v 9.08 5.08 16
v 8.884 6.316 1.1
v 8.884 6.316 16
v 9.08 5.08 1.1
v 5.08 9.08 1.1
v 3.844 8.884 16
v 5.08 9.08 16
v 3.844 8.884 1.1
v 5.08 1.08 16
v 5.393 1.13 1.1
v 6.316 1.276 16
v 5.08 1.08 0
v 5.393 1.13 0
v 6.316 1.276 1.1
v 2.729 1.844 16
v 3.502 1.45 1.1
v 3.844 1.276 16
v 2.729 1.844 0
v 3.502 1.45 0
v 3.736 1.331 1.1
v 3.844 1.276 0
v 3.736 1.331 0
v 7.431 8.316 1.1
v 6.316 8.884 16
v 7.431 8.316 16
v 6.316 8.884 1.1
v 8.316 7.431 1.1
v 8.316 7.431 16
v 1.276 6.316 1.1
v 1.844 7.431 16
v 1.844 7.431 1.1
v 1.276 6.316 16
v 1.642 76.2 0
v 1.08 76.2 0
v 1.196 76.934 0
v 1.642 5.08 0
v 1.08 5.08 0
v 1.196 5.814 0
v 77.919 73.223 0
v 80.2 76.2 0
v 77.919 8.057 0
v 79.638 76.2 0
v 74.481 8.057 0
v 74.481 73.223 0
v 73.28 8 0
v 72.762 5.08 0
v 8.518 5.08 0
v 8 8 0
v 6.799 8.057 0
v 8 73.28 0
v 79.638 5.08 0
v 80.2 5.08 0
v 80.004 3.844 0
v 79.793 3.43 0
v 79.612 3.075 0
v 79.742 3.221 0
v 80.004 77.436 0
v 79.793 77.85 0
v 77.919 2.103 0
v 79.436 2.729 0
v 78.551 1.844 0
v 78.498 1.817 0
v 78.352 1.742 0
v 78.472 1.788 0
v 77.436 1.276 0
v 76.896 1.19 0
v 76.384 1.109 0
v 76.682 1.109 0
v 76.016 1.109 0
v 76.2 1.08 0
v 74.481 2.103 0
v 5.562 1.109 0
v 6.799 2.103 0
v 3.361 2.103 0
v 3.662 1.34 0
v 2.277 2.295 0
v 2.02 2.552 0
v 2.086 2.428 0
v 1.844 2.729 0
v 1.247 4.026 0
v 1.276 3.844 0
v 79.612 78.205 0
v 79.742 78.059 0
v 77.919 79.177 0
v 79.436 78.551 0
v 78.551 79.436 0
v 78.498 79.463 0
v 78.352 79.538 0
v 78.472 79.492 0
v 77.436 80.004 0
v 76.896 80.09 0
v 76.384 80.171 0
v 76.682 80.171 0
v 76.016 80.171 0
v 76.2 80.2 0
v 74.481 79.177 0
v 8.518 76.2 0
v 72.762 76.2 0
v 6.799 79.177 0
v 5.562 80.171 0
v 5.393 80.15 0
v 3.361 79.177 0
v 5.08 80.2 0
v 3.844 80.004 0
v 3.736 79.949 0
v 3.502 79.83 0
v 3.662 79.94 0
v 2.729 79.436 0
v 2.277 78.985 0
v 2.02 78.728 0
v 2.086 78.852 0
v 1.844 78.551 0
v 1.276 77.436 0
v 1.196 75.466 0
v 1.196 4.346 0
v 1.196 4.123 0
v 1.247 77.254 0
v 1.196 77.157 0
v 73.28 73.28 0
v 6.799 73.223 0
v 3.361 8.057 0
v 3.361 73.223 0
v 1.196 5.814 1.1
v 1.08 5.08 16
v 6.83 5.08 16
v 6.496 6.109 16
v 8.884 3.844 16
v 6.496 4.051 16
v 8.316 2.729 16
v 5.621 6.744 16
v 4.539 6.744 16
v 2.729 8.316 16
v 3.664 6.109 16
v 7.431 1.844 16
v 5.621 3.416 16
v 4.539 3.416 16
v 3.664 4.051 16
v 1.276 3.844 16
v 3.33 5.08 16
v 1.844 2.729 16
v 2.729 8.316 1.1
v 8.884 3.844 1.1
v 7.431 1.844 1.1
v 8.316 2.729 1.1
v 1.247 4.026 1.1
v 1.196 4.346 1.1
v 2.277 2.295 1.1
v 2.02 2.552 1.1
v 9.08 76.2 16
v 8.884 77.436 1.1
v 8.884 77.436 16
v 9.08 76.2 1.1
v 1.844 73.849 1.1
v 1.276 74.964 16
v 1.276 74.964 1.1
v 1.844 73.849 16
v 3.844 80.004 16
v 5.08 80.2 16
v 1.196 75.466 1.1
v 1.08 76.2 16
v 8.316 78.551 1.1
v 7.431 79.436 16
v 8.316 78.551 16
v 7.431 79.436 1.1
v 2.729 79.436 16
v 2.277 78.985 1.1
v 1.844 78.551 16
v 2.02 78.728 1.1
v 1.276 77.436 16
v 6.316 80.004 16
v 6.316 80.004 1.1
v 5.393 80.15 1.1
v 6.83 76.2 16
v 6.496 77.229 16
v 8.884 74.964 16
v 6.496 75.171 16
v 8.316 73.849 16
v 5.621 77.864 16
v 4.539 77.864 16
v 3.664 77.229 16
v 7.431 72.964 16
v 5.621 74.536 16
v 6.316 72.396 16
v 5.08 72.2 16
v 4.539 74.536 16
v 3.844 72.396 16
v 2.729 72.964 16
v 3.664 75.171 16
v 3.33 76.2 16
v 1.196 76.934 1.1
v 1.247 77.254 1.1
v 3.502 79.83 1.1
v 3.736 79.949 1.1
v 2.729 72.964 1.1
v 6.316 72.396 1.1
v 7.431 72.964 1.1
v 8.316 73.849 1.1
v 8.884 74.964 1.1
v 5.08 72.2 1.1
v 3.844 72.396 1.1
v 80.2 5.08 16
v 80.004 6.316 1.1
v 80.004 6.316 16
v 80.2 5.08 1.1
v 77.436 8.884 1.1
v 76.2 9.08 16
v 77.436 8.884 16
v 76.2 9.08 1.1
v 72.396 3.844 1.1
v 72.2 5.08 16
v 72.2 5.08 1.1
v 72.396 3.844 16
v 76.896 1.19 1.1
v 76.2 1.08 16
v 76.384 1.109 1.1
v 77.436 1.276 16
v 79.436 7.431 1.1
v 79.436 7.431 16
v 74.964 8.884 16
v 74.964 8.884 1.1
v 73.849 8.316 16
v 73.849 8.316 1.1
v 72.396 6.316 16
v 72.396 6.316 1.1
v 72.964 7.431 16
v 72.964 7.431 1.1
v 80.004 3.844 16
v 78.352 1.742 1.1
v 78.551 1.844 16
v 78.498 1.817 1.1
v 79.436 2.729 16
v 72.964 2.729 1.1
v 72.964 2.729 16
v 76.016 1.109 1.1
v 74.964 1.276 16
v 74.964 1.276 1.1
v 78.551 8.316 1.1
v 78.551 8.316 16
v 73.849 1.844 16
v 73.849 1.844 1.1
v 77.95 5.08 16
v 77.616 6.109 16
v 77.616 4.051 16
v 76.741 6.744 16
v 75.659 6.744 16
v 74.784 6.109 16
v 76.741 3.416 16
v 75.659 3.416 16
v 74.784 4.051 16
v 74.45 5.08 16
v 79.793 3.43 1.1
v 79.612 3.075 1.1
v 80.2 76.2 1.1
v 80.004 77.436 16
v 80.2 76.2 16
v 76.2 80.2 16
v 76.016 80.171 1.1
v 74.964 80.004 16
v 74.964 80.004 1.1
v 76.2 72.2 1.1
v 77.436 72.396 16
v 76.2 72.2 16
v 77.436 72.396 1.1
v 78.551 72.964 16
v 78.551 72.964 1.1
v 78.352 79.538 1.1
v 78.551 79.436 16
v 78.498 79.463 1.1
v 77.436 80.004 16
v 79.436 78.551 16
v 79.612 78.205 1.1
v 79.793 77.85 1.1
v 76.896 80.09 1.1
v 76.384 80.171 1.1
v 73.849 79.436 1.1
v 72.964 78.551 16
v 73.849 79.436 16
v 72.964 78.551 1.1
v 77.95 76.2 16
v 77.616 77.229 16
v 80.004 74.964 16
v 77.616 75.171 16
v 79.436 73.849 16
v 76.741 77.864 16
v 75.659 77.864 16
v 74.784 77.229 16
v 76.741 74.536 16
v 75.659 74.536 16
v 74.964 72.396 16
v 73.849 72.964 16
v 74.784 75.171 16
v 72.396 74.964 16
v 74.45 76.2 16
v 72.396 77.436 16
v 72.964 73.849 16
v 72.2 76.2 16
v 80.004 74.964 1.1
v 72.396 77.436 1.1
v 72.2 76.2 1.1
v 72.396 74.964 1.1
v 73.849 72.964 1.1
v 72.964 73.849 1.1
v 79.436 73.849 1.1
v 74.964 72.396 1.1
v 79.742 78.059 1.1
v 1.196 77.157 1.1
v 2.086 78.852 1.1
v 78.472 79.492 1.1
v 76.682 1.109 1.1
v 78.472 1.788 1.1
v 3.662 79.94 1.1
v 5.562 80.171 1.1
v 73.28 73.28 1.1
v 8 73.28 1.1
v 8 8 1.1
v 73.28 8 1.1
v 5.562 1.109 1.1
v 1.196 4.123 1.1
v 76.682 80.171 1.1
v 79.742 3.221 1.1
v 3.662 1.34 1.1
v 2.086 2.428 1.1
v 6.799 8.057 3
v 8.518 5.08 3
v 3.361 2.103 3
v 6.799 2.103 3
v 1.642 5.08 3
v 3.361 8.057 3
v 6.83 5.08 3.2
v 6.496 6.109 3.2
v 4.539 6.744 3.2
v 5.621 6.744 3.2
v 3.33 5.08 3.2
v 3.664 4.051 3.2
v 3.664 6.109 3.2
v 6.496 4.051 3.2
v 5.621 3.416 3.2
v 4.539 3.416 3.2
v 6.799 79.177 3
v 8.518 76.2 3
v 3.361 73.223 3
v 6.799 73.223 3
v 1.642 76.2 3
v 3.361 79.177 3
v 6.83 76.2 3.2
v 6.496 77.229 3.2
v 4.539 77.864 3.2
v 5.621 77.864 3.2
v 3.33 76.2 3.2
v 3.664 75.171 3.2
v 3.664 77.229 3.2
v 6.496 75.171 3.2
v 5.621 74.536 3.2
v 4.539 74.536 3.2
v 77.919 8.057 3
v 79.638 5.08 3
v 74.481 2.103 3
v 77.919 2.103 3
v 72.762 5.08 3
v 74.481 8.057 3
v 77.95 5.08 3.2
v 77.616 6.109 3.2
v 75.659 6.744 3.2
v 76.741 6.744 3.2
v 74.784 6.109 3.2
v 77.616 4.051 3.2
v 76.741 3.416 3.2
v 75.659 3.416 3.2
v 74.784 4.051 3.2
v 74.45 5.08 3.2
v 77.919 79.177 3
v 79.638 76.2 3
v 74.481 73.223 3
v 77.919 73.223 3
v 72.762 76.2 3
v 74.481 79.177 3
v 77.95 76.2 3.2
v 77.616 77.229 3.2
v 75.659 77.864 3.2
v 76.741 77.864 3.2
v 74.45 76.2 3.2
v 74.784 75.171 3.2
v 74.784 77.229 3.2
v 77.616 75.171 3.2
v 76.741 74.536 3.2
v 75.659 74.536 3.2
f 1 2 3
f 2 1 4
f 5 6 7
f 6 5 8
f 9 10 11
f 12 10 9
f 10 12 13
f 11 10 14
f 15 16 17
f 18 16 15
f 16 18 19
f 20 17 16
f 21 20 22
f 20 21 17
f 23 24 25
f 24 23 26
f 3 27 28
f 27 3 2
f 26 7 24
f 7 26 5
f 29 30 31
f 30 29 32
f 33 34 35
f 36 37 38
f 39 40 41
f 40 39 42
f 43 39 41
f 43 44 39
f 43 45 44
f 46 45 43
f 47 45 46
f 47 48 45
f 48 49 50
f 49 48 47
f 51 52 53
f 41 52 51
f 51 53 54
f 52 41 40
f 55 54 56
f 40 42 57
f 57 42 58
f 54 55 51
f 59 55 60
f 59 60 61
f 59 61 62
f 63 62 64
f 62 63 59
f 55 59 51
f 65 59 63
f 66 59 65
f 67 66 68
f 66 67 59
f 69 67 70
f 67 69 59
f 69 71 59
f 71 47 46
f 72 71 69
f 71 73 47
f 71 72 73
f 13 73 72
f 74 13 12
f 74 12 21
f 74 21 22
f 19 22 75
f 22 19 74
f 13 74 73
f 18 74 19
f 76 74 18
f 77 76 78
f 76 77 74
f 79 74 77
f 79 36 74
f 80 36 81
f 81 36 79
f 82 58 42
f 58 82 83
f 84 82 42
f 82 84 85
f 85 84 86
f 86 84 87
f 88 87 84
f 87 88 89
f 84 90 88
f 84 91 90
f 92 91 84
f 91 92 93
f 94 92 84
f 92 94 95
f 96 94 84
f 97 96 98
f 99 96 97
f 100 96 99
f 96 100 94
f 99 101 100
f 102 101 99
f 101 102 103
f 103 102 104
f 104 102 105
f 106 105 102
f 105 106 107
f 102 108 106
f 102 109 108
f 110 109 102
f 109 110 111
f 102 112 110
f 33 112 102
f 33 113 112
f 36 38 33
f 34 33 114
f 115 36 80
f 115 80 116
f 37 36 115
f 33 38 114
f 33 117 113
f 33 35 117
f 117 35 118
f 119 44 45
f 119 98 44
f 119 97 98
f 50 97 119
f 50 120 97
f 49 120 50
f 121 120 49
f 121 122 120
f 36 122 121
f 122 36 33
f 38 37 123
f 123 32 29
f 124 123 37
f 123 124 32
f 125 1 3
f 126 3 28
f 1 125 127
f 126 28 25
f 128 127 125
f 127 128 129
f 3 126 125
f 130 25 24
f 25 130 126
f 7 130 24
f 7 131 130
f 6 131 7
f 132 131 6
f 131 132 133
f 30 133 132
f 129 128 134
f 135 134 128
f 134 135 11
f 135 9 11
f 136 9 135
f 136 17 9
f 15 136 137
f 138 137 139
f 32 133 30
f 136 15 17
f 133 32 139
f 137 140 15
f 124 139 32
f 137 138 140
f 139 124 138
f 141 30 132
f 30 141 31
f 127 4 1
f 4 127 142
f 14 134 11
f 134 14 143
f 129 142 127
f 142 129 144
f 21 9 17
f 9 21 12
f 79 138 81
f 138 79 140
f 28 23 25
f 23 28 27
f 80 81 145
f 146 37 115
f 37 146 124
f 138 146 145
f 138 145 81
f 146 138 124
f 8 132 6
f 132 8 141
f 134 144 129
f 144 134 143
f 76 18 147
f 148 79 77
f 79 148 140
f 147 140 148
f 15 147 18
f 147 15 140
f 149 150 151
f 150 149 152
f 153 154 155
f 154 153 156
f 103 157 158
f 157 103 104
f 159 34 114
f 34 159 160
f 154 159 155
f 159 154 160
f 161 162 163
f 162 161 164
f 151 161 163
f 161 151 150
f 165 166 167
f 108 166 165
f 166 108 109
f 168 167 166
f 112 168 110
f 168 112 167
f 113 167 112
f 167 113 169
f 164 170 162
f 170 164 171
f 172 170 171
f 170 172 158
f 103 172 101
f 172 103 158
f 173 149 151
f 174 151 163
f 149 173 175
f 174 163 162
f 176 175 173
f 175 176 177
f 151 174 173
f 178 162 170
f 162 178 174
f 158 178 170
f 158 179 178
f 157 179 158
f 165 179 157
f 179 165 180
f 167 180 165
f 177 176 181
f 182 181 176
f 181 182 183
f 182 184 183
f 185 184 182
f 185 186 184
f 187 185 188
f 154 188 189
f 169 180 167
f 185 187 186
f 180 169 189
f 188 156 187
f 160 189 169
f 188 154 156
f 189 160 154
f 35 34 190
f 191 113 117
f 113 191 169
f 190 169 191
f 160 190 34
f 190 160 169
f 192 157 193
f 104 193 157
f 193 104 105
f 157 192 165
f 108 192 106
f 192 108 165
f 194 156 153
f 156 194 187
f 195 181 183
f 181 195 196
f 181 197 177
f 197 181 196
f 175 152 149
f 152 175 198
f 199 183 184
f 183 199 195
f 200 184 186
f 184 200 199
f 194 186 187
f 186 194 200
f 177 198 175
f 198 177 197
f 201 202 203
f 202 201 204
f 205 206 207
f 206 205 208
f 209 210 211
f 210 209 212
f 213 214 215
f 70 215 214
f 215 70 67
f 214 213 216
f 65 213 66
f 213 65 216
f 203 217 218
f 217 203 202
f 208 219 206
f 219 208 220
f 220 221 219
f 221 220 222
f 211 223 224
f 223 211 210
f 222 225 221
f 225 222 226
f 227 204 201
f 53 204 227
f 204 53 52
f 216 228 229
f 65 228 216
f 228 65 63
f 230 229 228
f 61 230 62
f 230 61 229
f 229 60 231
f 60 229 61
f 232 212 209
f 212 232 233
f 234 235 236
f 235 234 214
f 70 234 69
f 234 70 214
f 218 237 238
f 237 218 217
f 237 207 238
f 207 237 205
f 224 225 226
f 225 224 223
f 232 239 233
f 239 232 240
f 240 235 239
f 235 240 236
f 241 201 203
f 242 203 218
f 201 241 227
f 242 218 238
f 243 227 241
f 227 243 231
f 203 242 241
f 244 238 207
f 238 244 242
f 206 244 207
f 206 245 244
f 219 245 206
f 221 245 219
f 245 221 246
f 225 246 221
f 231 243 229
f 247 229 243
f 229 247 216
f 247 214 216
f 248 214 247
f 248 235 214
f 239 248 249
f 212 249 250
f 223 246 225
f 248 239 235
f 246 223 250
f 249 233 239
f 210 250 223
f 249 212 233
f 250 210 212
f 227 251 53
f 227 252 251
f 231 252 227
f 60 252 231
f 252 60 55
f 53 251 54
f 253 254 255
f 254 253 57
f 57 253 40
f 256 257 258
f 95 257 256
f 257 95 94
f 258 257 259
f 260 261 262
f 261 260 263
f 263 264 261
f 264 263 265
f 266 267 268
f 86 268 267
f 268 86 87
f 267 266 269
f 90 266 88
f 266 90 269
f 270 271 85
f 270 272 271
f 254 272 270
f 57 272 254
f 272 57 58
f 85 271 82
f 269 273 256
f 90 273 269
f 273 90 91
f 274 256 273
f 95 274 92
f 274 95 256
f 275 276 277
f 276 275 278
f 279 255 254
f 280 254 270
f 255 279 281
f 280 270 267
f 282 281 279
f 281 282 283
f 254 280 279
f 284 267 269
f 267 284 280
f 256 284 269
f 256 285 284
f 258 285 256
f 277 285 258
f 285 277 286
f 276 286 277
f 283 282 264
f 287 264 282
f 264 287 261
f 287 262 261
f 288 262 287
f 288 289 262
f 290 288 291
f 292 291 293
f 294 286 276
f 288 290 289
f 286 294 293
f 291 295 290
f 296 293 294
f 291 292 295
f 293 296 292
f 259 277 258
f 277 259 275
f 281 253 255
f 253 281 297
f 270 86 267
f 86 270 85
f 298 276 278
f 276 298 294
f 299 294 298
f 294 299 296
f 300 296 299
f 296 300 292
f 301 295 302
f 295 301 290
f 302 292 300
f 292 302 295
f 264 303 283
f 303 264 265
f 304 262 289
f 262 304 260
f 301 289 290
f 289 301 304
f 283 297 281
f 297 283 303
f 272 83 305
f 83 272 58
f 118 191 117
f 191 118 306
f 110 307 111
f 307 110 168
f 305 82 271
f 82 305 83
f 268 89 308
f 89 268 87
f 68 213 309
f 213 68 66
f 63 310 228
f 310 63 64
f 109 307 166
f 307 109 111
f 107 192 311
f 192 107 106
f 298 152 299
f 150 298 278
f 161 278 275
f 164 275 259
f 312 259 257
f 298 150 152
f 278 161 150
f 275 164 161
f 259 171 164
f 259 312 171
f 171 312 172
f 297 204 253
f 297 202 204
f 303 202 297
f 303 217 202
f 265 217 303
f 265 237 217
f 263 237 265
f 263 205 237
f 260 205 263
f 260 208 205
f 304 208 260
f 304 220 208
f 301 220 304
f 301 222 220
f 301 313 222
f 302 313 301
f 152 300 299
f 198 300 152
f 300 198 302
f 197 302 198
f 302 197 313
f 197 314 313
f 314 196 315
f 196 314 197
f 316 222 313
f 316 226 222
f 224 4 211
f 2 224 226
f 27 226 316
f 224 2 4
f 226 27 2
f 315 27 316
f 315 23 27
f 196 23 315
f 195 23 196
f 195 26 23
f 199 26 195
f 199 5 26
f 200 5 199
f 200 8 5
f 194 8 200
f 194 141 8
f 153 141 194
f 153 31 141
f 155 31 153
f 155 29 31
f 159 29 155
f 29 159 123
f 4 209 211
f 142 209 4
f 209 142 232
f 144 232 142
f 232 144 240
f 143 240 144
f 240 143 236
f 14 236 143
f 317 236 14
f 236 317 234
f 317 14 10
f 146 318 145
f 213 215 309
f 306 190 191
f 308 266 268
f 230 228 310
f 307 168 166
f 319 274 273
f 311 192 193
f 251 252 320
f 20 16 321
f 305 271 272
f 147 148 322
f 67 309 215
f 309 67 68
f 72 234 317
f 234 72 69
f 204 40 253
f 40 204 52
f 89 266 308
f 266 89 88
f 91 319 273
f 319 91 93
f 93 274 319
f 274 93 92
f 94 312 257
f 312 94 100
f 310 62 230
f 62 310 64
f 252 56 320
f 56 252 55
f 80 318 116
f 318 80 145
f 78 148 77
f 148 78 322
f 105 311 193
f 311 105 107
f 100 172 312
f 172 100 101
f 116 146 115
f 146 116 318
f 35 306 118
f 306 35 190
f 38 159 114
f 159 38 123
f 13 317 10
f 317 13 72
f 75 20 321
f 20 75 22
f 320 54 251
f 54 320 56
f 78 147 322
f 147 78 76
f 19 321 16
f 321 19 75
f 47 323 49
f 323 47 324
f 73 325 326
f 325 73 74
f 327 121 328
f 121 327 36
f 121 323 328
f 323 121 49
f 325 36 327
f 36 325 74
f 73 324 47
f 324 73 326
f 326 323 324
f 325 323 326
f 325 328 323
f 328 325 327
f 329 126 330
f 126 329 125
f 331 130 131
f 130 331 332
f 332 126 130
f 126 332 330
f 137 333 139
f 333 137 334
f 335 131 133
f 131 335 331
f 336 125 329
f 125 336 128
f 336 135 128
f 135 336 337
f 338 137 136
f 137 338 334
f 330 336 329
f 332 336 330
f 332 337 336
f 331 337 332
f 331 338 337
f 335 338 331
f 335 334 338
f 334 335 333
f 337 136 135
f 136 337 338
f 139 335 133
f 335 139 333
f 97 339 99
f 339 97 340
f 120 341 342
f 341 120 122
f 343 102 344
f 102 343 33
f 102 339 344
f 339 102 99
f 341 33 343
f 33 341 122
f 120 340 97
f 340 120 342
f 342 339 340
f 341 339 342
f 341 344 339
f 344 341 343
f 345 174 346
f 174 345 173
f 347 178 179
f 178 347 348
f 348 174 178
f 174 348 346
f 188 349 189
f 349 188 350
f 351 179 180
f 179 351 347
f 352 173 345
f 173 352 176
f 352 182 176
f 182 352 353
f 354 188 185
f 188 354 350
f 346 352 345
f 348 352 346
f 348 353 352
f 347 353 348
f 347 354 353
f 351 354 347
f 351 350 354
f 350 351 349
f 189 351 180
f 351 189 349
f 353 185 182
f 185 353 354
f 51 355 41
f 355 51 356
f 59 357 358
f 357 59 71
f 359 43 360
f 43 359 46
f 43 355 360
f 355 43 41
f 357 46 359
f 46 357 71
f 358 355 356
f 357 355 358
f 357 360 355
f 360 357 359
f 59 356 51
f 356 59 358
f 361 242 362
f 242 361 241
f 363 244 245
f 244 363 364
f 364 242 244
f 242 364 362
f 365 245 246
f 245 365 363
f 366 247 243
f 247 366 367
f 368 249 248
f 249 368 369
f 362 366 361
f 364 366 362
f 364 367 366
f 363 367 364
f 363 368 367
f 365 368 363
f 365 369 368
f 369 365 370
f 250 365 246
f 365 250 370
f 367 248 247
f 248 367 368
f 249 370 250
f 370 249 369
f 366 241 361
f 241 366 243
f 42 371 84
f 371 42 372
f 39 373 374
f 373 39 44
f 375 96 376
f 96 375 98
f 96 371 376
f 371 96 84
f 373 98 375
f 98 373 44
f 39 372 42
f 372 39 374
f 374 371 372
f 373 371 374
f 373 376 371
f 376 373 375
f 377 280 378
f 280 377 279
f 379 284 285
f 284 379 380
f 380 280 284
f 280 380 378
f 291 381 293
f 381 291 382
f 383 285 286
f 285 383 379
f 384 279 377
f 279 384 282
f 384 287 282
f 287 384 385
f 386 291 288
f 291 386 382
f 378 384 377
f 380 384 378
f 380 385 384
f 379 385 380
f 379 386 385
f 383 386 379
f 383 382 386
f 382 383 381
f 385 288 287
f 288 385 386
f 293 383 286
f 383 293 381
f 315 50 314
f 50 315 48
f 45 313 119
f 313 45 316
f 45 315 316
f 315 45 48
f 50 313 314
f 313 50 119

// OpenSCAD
x_holes = 8;
y_holes = 8;
MLAB_grid = 10.16;
pile_radius = 4;
pedestal_height = 16;   // designed for use the MLAB standard 25mm screws.
x_size = x_holes * MLAB_grid ;
y_size = y_holes * MLAB_grid ;
mount_hole = 3.5;
//nut_size = 6.8;  //size suitable for PLA material
nut_size = 6.7;  //size suitable for ABS material
clear = 0.175;


thickness = 1;

MLAB_grid_xoffset = MLAB_grid/2;
MLAB_grid_yoffset = MLAB_grid/2;

grid_list = [for (j = [MLAB_grid_xoffset : MLAB_grid: x_size], i = [MLAB_grid_yoffset :MLAB_grid: y_size]) 
if ((j>(x_size-10) && i>(y_size-10)) || (j<10 && i<10) || (j<10 && i>(y_size-10)) || (j>(x_size-10) && i<10) ) [j, i] ];


difference () {
    union () {
        for (j = grid_list) {
            translate (concat(j, [0]))
            cylinder (h = pedestal_height, r= pile_radius, $fn=20);
        }

            translate ([MLAB_grid_xoffset , MLAB_grid_yoffset , 0])
                minkowski() {
                cube([x_size - 2*(MLAB_grid/2 - pile_radius) - 2*pile_radius, y_size - 2*(MLAB_grid/2 - pile_radius) - 2*pile_radius, thickness]);          // base plastics brick
                cylinder(r=pile_radius,h=0.1);
            }
    }
    
    translate ([2*pile_radius, 2*pile_radius, 0]) // central hole in module support
        cube([x_size-4*pile_radius, y_size-4*pile_radius, 2*thickness]);          

    // MLAB grid holes
    for (j = grid_list) {
            translate (concat(j, [0]))
            cylinder (h = 3, r= (nut_size+clear)/2, $fn=6);
            translate (concat(j, [3.2]))  // one solid layer for slicer (the holes will be pierced on demand )
            cylinder (h = pedestal_height, r= mount_hole/2, $fn=10);
        }    
}
